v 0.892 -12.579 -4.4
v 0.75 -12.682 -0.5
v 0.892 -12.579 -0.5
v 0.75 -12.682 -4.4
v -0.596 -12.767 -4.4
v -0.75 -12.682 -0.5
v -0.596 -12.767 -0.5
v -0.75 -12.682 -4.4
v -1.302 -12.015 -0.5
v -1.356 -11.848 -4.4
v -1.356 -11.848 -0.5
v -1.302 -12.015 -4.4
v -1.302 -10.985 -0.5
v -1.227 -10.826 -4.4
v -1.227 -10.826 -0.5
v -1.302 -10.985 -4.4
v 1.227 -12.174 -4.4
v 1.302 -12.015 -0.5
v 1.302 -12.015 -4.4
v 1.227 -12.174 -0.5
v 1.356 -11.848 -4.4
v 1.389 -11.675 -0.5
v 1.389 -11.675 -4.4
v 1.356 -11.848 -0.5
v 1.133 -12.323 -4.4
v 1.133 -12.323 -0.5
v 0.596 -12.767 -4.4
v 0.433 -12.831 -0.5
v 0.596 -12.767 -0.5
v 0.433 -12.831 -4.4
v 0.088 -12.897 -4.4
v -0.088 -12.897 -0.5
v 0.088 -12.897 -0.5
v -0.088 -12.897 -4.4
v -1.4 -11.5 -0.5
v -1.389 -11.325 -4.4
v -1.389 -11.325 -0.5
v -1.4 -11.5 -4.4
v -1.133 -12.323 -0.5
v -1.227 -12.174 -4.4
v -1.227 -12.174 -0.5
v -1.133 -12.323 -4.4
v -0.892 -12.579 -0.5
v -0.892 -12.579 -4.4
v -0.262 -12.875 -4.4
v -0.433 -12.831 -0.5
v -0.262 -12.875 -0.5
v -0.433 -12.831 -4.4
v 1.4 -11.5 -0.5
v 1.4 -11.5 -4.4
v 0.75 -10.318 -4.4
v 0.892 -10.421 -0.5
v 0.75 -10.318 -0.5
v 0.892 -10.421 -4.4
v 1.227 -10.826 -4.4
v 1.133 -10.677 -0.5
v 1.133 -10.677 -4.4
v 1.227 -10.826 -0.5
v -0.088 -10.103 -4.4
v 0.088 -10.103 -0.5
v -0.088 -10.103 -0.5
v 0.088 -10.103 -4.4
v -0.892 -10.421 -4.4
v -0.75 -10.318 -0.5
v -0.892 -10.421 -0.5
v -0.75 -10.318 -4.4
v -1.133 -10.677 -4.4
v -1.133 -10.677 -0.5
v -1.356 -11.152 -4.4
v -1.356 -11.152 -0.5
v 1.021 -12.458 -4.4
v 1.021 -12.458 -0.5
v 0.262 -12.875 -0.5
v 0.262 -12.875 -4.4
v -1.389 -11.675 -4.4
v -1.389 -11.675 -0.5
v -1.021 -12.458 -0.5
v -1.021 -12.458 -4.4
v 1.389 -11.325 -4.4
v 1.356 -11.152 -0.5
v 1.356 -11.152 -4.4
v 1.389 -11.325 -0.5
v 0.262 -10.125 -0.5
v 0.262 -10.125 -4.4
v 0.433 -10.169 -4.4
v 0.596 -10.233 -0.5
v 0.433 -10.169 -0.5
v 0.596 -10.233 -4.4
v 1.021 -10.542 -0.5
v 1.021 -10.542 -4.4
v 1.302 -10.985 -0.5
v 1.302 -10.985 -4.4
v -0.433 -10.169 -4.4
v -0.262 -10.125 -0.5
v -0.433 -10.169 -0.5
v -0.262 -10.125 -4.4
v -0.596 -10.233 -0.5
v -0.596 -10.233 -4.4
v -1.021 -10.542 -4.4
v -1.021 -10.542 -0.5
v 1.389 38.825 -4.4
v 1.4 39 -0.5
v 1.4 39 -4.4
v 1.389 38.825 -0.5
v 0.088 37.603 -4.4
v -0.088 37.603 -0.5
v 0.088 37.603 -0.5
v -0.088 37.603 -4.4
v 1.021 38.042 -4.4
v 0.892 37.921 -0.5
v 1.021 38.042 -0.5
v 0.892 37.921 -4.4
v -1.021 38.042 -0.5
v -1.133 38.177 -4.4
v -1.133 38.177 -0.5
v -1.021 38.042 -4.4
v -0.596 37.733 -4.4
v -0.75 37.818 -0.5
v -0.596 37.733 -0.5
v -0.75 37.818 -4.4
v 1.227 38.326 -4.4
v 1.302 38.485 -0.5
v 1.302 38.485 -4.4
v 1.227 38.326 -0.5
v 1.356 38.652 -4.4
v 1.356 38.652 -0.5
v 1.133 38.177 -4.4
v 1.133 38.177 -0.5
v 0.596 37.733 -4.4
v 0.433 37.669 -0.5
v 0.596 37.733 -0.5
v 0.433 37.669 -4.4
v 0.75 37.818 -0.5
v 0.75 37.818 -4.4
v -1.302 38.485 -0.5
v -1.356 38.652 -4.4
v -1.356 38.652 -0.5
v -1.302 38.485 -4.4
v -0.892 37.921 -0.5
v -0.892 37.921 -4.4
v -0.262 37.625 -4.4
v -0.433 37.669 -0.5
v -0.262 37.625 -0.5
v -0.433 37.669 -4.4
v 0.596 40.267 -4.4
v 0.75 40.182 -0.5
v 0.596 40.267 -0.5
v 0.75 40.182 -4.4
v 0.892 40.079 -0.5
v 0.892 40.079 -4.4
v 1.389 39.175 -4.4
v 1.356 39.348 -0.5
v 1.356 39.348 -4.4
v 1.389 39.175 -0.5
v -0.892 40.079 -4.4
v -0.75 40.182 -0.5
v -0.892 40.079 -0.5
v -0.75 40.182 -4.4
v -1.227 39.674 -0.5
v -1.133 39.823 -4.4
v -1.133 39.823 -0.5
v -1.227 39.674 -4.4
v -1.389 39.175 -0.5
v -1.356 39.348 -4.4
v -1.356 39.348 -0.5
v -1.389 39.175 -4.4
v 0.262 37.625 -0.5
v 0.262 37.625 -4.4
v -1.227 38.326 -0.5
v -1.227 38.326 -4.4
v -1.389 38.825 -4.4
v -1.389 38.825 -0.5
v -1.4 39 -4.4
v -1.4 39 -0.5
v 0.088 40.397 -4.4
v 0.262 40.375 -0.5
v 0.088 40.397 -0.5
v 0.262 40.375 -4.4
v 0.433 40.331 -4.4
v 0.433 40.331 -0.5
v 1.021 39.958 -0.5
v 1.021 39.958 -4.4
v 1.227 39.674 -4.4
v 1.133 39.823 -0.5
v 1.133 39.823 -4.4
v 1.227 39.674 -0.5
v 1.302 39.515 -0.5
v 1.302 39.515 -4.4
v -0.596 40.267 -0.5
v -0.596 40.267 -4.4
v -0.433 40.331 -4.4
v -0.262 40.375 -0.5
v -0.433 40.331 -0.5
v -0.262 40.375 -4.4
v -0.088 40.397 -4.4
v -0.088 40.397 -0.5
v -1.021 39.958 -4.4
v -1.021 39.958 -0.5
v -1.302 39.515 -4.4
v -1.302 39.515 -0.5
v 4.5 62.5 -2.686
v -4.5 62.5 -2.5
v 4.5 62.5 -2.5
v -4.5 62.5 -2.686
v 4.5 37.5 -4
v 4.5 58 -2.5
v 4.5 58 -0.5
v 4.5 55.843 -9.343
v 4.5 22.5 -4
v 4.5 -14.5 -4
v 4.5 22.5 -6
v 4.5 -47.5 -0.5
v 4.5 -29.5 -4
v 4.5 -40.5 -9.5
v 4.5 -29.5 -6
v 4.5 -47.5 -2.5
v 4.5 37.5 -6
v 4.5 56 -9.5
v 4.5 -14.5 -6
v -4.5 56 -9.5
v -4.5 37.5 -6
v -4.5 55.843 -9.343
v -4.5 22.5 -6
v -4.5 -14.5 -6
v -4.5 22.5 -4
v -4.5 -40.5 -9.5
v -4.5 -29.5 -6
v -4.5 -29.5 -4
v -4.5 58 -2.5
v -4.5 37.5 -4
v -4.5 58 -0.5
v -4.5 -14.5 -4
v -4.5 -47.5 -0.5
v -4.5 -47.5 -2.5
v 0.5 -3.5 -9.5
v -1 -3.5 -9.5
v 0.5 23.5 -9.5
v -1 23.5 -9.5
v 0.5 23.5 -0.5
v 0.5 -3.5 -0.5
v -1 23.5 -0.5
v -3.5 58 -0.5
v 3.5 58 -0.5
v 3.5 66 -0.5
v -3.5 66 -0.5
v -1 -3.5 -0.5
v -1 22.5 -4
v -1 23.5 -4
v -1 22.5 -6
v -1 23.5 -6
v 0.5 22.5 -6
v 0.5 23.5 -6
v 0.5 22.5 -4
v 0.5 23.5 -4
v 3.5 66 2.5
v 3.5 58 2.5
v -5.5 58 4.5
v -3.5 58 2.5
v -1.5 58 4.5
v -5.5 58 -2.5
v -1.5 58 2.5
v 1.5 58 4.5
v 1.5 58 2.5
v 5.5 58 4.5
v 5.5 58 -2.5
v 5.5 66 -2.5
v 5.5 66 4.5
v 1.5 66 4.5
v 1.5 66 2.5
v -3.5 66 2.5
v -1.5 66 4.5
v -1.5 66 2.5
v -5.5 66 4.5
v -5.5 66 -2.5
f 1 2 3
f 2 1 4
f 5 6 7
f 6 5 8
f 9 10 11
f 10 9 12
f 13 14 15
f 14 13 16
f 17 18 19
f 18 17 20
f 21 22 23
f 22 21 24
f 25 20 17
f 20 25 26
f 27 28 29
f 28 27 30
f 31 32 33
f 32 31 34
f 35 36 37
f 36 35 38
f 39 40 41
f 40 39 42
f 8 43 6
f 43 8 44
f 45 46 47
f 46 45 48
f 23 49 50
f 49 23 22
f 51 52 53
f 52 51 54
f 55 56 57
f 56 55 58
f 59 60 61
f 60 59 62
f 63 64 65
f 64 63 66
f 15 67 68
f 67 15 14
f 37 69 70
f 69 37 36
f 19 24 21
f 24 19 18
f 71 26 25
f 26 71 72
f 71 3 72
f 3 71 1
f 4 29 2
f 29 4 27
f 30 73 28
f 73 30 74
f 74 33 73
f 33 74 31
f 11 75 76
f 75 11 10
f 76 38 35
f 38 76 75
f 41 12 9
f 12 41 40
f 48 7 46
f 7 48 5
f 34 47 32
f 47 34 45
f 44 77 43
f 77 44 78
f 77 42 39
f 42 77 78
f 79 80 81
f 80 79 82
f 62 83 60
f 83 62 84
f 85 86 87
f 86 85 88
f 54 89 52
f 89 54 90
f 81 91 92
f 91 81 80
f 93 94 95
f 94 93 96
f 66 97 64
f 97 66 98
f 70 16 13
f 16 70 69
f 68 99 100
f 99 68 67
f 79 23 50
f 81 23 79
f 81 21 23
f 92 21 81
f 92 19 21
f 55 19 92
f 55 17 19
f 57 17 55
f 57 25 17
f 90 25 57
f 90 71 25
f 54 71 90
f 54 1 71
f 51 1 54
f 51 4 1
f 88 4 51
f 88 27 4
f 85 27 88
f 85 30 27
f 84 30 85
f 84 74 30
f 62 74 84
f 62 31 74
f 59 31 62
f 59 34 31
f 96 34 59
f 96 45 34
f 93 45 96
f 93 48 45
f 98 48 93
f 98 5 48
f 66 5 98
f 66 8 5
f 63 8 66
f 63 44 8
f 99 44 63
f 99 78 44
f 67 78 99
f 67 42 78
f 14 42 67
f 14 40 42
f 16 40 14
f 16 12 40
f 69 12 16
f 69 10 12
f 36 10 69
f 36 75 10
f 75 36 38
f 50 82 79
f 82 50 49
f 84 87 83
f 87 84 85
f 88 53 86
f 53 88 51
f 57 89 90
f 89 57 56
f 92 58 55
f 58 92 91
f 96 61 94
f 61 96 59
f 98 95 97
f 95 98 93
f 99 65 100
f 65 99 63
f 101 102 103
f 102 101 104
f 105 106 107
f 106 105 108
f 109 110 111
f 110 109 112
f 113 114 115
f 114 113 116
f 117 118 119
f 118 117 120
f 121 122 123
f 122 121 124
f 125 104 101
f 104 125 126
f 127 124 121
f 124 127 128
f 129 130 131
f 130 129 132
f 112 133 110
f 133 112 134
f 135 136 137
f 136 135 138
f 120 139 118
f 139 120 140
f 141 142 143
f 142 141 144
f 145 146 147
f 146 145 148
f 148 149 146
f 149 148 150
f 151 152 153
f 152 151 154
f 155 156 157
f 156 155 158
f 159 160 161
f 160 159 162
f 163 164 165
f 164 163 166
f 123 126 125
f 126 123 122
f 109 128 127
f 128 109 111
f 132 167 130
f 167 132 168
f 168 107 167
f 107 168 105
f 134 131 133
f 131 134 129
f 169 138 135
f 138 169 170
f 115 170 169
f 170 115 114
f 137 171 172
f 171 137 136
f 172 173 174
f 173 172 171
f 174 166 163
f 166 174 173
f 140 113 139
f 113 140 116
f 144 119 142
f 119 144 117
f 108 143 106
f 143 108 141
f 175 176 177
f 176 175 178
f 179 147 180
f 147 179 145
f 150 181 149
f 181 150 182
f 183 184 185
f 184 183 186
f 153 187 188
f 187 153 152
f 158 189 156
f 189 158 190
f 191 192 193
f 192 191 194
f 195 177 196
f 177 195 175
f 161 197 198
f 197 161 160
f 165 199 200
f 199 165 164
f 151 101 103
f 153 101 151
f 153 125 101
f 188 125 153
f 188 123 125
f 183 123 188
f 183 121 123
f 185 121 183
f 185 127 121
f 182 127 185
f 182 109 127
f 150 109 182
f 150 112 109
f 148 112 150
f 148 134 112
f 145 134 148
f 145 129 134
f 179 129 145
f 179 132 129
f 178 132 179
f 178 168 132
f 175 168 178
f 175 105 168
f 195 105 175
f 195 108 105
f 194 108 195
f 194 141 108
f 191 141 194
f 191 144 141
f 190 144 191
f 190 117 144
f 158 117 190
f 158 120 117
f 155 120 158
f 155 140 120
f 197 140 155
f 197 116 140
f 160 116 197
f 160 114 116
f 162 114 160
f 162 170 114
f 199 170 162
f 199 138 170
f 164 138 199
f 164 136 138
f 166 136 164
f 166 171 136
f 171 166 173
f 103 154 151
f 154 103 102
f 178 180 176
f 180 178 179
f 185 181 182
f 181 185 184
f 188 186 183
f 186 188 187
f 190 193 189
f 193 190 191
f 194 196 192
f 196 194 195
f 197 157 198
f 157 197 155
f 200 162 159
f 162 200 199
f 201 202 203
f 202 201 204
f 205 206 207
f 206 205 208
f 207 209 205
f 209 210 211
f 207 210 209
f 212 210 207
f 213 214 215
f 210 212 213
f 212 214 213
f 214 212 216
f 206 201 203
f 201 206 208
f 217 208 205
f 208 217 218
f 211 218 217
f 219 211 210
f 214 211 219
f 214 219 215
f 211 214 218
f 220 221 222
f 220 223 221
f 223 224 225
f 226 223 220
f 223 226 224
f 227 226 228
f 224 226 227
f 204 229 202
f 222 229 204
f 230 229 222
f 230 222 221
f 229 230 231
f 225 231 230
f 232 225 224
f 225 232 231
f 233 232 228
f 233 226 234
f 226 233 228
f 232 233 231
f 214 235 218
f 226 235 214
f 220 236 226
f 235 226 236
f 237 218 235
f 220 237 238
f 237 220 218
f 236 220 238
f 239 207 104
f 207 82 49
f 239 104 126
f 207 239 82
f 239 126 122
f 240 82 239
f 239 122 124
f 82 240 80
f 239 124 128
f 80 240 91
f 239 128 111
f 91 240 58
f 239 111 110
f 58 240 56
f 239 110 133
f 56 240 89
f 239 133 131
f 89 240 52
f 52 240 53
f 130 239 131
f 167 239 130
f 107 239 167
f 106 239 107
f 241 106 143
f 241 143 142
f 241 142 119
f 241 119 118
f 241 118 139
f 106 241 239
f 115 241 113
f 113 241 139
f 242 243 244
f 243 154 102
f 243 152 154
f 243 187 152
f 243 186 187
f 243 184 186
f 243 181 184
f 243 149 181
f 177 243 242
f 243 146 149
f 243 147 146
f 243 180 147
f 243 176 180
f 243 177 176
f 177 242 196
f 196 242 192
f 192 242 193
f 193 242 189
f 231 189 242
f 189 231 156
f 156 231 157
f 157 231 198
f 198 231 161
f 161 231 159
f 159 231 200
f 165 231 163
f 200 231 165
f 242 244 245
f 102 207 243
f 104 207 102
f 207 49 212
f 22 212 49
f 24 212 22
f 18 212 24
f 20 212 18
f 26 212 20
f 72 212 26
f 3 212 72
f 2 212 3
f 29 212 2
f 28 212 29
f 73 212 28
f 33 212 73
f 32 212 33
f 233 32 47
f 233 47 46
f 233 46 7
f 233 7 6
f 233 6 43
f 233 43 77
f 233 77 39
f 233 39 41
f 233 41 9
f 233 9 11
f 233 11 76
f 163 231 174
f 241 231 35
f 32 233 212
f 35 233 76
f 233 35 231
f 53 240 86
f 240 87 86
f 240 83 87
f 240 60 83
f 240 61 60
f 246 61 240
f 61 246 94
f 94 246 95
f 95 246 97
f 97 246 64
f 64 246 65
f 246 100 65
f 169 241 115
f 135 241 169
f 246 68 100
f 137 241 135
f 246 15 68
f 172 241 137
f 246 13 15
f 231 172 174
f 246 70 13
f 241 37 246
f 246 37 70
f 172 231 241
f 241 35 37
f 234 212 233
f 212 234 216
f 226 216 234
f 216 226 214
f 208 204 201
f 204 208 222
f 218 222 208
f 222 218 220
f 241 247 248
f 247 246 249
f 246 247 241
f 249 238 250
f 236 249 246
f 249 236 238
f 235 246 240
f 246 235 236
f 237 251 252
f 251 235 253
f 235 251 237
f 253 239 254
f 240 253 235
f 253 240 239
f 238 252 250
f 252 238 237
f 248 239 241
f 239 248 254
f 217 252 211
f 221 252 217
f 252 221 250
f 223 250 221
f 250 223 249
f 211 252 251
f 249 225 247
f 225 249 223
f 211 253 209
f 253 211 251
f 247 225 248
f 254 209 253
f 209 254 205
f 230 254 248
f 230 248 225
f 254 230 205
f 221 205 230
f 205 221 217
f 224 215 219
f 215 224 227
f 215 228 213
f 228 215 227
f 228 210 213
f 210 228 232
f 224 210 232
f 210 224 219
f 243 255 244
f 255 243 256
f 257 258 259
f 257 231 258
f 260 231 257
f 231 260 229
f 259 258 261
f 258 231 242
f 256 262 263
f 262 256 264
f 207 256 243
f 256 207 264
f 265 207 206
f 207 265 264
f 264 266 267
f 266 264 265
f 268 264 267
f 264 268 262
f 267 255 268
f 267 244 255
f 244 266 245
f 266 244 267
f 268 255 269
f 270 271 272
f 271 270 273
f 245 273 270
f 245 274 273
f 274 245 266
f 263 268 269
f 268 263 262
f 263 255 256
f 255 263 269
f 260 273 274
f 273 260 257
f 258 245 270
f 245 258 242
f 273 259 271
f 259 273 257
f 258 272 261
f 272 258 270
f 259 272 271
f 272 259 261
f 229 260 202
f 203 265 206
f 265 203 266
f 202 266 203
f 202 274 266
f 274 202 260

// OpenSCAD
$fn=50;
//SCREW_SIZE = .5; // Screw size in mm
CORNER_RADIUS = 1.0; // Radius of corners
WALL = 1.0;// Wall Thickness

KEEL_WIDTH=9.0;
KEEL_HEIGHT=9.0;
KEEL_LENGTH=110;

VENT_OFFSET = 2.5;
VENT_L = 16.5;
VENT_R = -18.5;

MOUNT_HOLE_OFFSET = 9;
difference() {
    union() {
        // measuring posts
        //translate([0,  MOUNT_HOLE_OFFSET+15, 0]) cylinder(h=7, d=1.0);            
        //translate([0, MOUNT_HOLE_OFFSET+30, 0]) cylinder(h=7, d=1.0);
        
        // keel
        translate([0,62.5,-5])
        rotate([90,0,0])
        difference() {
            linear_extrude(KEEL_LENGTH) square([KEEL_WIDTH, KEEL_HEIGHT], center=true); 
            // front of keel slope
            //(x, z, y
            translate([-5, -5, 102.5])
            rotate([45, 0, 0])
            cube([10, 11, 8]);  
            
            // back of keel slope
            translate([-5, -10, 1])
            rotate([-45, 0, 0])
            cube([10, 11, 8]); 
            
            //center cutout - vent
            // y, z, x
            translate([-1.0,-6, 39.0])
            rotate([0,0,0])
            //y, z, x
            cube([1.5, 12, 27]);
            
            // screw holes
            rotate([90,0,0])
            union() {
                // x,y,z
                //translate([0.0, KEEL_LENGTH-35.0, -4.6]) #cylinder(h=4, d=2.8); 
                translate([0.0, KEEL_LENGTH-36.0, -4.6]) cylinder(h=4, d=2.8); 
                translate([0.0, KEEL_LENGTH-86.5, -4.6]) cylinder(h=4, d=2.8);   
            }
            // thru slots for straps rear
            rotate([90, 0, 0])
            translate([-7.0, 25,-1]) 
            cube([14, 15, 2]);
            // thru slots for straps front            
            rotate([90, 0, 0])
            translate([-7.0, 77,-1]) 
            cube([14, 15, 2]);
            /*
            // convex bottom
            // (x,z,y
            translate([0,-16.4,4]) 
            #cylinder(h=92, d=25);
            */
        }
        // Inverted L-shaped C-clamp
        difference() {
            translate([KEEL_WIDTH/2-3, KEEL_LENGTH-25, -0.5])
            rotate([90, 0, 0])
            union(){
                // Vertical arm of the C-clamp 2
                translate([2.0, 0, 19]) cube([2, 5, 8]);
                // Horizontal arm of the C-clamp
                rotate([90, 0, 0])
                translate([0, 19, -5]) cube([2, 8, 2]);
                // Vertical arm of the C-clamp 1
                translate([-7, 0, 19]) cube([2, 5, 8]);
                // Horizontal arm of the C-clamp
                rotate([90, 0, 0])
                translate([-5.0, 19,-5]) cube([2, 8, 2]);
                // clamp bed
                rotate([90, 0, 0])
                translate([-7.0, 19,-0]) cube([11, 8, 2]);
            }
        }
    }
}
